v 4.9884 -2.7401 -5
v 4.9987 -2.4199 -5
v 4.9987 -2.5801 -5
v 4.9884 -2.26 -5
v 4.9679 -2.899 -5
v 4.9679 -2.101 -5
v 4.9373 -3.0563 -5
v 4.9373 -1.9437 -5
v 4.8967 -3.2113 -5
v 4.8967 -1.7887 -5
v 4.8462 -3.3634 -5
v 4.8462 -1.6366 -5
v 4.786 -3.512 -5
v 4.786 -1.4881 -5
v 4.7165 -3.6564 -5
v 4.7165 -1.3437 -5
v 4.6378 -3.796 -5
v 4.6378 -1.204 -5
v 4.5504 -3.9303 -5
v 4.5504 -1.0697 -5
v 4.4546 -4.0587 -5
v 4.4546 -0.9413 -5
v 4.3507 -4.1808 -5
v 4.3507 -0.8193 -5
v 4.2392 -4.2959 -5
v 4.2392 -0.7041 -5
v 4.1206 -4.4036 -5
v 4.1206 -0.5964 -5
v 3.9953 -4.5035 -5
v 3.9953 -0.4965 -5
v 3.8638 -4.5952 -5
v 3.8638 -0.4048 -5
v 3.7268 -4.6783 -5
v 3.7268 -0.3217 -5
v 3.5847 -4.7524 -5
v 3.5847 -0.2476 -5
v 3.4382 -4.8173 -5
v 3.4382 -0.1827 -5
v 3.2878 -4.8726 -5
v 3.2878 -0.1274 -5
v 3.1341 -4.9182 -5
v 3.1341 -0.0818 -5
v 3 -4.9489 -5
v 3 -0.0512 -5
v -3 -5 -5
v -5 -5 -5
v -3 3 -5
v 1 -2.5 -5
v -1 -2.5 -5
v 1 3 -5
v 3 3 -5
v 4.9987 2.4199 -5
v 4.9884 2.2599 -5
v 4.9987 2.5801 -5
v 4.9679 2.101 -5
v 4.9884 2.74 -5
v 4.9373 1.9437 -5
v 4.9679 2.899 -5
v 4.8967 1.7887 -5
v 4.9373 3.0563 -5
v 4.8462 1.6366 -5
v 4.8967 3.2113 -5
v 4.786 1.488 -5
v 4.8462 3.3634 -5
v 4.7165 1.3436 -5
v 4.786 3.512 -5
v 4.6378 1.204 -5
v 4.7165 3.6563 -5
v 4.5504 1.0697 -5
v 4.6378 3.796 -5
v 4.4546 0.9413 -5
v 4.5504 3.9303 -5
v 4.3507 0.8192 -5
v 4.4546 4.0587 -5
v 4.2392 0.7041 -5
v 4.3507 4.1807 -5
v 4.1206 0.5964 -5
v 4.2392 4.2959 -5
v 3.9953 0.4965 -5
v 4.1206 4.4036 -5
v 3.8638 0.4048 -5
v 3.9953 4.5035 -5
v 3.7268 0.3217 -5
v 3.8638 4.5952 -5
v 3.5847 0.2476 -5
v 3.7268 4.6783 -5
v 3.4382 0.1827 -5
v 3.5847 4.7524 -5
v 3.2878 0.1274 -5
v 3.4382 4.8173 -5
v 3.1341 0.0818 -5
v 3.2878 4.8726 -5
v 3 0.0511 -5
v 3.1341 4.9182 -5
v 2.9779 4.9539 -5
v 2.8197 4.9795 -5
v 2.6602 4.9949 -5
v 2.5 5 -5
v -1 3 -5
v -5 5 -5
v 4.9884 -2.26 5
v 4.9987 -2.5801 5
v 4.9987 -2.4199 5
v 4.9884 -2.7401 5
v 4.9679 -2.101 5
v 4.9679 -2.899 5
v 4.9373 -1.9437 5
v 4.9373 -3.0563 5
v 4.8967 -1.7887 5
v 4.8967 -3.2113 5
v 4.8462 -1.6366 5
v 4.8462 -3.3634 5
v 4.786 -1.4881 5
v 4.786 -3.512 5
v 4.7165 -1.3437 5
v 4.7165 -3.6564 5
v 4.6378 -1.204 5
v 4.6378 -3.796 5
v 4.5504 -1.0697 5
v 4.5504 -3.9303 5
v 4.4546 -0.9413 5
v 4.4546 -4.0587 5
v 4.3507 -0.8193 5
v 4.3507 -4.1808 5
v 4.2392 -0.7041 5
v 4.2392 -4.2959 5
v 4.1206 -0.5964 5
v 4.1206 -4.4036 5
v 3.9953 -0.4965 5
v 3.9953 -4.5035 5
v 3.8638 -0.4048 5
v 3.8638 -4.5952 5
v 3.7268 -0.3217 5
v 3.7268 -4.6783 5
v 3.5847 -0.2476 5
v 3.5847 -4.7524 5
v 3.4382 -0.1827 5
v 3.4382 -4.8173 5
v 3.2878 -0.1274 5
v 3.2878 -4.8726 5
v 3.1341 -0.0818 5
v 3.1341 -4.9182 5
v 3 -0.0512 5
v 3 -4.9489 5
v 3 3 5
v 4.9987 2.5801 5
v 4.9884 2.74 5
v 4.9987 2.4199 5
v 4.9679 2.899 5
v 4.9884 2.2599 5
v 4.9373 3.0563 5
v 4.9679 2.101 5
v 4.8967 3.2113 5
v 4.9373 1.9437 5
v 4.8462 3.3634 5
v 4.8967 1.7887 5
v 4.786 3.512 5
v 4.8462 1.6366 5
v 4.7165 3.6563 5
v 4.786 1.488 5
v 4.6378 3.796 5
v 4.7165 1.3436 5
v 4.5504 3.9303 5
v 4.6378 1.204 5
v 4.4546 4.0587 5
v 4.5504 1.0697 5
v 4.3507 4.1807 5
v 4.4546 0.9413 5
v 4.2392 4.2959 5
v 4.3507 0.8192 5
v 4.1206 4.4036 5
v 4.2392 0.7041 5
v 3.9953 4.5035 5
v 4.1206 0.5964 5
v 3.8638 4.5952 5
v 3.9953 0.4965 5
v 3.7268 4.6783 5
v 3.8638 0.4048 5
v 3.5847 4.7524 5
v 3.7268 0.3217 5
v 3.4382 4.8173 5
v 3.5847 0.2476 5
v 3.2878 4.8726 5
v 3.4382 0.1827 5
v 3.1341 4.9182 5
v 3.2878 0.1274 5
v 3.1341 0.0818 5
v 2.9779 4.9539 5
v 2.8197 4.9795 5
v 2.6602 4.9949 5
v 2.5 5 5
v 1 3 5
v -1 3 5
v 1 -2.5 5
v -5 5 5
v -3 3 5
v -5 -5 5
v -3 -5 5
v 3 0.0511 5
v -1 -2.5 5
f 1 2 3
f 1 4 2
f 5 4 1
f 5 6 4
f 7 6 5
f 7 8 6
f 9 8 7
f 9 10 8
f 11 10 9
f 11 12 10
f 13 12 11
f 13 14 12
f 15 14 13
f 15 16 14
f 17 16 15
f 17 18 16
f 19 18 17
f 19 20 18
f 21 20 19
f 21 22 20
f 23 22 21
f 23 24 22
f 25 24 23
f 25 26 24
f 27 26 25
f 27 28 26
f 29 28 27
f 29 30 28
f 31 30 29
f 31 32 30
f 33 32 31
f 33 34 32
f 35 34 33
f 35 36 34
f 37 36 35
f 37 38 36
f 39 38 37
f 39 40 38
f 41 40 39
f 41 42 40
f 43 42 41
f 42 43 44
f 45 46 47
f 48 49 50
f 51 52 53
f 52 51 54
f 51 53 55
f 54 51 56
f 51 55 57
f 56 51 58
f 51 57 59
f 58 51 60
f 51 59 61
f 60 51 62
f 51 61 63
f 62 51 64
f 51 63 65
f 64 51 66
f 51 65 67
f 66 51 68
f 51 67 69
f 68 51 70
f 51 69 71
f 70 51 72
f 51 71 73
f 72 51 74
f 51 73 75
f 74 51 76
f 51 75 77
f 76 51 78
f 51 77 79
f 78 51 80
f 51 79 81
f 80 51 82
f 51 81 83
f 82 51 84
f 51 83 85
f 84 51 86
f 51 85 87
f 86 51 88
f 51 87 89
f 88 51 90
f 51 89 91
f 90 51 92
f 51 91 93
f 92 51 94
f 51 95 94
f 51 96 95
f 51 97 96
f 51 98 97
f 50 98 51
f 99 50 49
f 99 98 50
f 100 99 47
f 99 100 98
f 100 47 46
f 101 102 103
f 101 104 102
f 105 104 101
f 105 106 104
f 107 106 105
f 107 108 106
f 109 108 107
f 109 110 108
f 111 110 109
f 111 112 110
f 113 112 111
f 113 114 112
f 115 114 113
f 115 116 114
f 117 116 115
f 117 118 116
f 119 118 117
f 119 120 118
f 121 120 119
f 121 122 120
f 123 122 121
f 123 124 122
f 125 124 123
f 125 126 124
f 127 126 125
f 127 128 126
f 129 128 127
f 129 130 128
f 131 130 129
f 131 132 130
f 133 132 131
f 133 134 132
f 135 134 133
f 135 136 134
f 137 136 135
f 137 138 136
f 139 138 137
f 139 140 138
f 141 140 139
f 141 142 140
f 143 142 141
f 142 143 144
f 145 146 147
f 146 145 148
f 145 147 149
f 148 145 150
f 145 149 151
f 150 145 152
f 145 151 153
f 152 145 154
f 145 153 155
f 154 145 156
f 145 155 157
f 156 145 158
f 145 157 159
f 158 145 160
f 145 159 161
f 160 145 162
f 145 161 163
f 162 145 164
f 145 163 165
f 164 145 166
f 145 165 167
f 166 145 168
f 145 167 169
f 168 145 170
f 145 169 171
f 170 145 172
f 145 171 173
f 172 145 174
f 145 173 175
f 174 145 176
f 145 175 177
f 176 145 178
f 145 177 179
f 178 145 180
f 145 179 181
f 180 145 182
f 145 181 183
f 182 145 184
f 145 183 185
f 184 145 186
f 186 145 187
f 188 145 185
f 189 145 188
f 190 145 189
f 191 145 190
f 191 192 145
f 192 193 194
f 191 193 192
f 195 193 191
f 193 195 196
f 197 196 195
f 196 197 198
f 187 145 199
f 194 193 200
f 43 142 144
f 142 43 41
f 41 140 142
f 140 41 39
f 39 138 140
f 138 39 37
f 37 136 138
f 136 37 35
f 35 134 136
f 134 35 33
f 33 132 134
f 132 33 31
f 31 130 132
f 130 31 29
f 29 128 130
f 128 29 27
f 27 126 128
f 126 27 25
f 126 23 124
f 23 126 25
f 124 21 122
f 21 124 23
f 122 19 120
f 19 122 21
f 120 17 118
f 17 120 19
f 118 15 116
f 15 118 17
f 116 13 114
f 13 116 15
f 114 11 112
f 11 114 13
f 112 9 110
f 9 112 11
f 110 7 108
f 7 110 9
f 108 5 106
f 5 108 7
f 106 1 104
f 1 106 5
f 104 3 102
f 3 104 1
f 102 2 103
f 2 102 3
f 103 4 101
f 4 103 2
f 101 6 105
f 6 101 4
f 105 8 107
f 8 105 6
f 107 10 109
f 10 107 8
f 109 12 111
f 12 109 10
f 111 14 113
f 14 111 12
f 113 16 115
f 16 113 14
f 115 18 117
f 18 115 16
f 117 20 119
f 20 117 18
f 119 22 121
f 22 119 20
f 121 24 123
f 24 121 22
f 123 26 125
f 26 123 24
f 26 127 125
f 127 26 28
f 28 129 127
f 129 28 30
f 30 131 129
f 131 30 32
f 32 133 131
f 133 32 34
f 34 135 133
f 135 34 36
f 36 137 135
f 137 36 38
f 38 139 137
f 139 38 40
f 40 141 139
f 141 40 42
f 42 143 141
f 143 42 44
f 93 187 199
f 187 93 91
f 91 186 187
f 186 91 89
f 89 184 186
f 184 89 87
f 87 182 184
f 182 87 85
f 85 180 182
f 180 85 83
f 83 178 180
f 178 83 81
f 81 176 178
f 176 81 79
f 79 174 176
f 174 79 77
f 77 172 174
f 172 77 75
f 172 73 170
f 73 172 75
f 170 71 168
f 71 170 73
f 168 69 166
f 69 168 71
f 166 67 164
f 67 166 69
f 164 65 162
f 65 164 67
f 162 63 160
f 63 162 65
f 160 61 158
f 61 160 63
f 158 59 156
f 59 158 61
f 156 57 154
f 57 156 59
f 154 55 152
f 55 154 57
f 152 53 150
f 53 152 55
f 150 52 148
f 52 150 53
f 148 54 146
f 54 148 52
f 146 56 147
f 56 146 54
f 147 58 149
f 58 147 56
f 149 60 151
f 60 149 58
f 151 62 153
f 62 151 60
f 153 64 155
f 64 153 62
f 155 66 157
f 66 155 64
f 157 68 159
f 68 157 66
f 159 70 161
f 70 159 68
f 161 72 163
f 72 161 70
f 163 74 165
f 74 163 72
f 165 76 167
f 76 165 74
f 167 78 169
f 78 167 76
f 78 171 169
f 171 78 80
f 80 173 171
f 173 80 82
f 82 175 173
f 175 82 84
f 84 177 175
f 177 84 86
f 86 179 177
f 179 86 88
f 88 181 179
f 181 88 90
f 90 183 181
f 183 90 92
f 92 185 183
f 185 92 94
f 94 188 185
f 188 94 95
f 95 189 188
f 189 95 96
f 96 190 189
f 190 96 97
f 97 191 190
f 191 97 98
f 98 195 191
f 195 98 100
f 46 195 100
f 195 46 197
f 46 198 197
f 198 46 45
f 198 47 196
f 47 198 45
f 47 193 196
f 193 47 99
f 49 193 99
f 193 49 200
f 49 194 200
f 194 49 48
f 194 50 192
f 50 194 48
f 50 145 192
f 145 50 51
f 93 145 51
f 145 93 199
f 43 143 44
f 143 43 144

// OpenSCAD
// Generated by SolidPython 1.1.3 on 2025-02-20 04:03:48
$fn=50;


intersection() {
	translate(v = [-5.0000000000, -5.0000000000, -5.0000000000]) {
		linear_extrude(height = 10) {
			polygon(points = [[7.5000000000, 10.0000000000], [7.6601755500, 9.9948634819], [7.8196929042, 9.9794750346], [7.9778965718, 9.9538978925], [8.1341364598, 9.9182371576], [8.2877705451, 9.8726393675], [8.4381675122, 9.8172918934], [8.5847093478, 9.7524221698], [8.7267938800, 9.6782967603], [8.8638372530, 9.5952202622], [8.9952763262, 9.5035340547], [9.1205709883, 9.4036148959], [9.2392063765, 9.2958733752], [9.3506949927, 9.1807522257], [9.4545787062, 9.0587245046], [9.5504306365, 8.9302916503], [9.6378569075, 8.7959814208], [9.7164982659, 8.6563457256], [9.7860315575, 8.5119583578], [9.8461710551, 8.3634126361], [9.8966696326, 8.2113189666], [9.9373197805, 8.0563023349], [9.9679544585, 7.8989997376], [9.9884477824, 7.7400575648], [9.9987155405, 7.5801289439], [9.9987155405, 7.4198710561], [9.9884477824, 7.2599424352], [9.9679544585, 7.1010002624], [9.9373197805, 6.9436976651], [9.8966696326, 6.7886810334], [9.8461710551, 6.6365873639], [9.7860315575, 6.4880416422], [9.7164982659, 6.3436542744], [9.6378569075, 6.2040185792], [9.5504306365, 6.0697083497], [9.4545787062, 5.9412754954], [9.3506949927, 5.8192477743], [9.2392063765, 5.7041266248], [9.1205709883, 5.5963851041], [8.9952763262, 5.4964659453], [8.8638372530, 5.4047797378], [8.7267938800, 5.3217032397], [8.5847093478, 5.2475778302], [8.4381675122, 5.1827081066], [8.2877705451, 5.1273606325], [8.1341364598, 5.0817628424], [7.9778965718, 5.0461021075], [7.8196929042, 5.0205249654], [7.6601755500, 5.0051365181], [7.5000000000, 5.0000000000], [7.5000000000, 5.0000000000], [7.6601755500, 4.9948634819], [7.8196929042, 4.9794750346], [7.9778965718, 4.9538978925], [8.1341364598, 4.9182371576], [8.2877705451, 4.8726393675], [8.4381675122, 4.8172918934], [8.5847093478, 4.7524221698], [8.7267938800, 4.6782967603], [8.8638372530, 4.5952202622], [8.9952763262, 4.5035340547], [9.1205709883, 4.4036148959], [9.2392063765, 4.2958733752], [9.3506949927, 4.1807522257], [9.4545787062, 4.0587245046], [9.5504306365, 3.9302916503], [9.6378569075, 3.7959814208], [9.7164982659, 3.6563457256], [9.7860315575, 3.5119583578], [9.8461710551, 3.3634126361], [9.8966696326, 3.2113189666], [9.9373197805, 3.0563023349], [9.9679544585, 2.8989997376], [9.9884477824, 2.7400575648], [9.9987155405, 2.5801289439], [9.9987155405, 2.4198710561], [9.9884477824, 2.2599424352], [9.9679544585, 2.1010002624], [9.9373197805, 1.9436976651], [9.8966696326, 1.7886810334], [9.8461710551, 1.6365873639], [9.7860315575, 1.4880416422], [9.7164982659, 1.3436542744], [9.6378569075, 1.2040185792], [9.5504306365, 1.0697083497], [9.4545787062, 0.9412754954], [9.3506949927, 0.8192477743], [9.2392063765, 0.7041266248], [9.1205709883, 0.5963851041], [8.9952763262, 0.4964659453], [8.8638372530, 0.4047797378], [8.7267938800, 0.3217032397], [8.5847093478, 0.2475778302], [8.4381675122, 0.1827081066], [8.2877705451, 0.1273606325], [8.1341364598, 0.0817628424], [7.9778965718, 0.0461021075], [7.8196929042, 0.0205249654], [7.6601755500, 0.0051365181], [7.5000000000, 0.0000000000], [0, 0], [0, 10]]);
		}
	}
	rotate(a = -90, v = [0, 0, 1]) {
		translate(v = [-5.0000000000, -5.0000000000, -5.0000000000]) {
			linear_extrude(height = 10) {
				polygon(points = [[0, 0], [10, 0], [10, 2.0000000000], [2.0000000000, 2.0000000000], [2.0000000000, 4.0000000000], [7.5000000000, 4.0000000000], [7.5000000000, 6.0000000000], [2.0000000000, 6.0000000000], [2.0000000000, 8.0000000000], [10, 8.0000000000], [10, 10], [0, 10]]);
			}
		}
	}
}
/***********************************************
*********      SolidPython code:      **********
************************************************
 
from solid import *
from solid.utils import *

import math
import matplotlib.pyplot as plt
import subprocess
import os

class Hole:
    def __init__(self, x, y, radius):
        """
        Hole defined by:
        :param x: x dimension for center point of the circle as a ratio of letter height
        :param y: y dimension for center point of the circle as a ratio of letter height
        :param radius: radius of circle as a ratio of letter height
        """
        self.x = x
        self.y = y
        self.radius = radius

class Letter3D:
    def __init__(self, name, outer_shape_points, height, holes=None):
        """
        3D Letter defined by:
        :param name: name of letter
        :param outer_shape_points: points defining the outer shape of the letter
        :param heigh: size of cube that letter fits inside
        :param holes: list of Holes
        """
        self.name = name
        self.outer_shape_points = outer_shape_points
        self.holes = holes if holes is None else []
        self.height = height


    def generate(self):
        shape = polygon(points=self.outer_shape_points)

        if self.holes:
            for hole in self.holes:
                circle_hole = circle(r=hole.radius*self.height)
                positioned_hole = translate([hole.x*self.height, hole.y*self.height])(circle_hole)
                shape = difference()(shape, positioned_hole)
        
        shape_3d = linear_extrude(height=self.height)(shape)
        shape_3d = translate([-self.height/2, -self.height/2, -self.height/2])(shape_3d)
        return shape_3d
    
    def render(self):
        scad_render_to_file(self.shape, f"output/{self.name}.scad", file_header='$fn=50;')
        subprocess.run(["C:\\Program Files\\OpenSCAD\\openscad.exe", "-o", f"output\\{self.name}.stl", f"output\\{self.name}.scad"])


class TwoLetter3D:
    def __init__(self, height, letterA, letterA_face, letterB=None, letterB_face=None):
        self.height = height
        self.letterA = letterA
        self.letterB = letterB
        self.letterA_face = letterA_face
        self.letterB_face = letterB_face

    def call_letter_generation(self, letter):
        letter = letter.upper()
        function_name = f"letter_{letter}"
        func = globals().get(function_name)
        if func is None:
            raise ValueError(f"No letter generation function defined for letter '{letter}'.")
        else:
            print(func)
        return func(self.height)
    
    def rotate_object(self, face, shape):
        face = face.lower()
        if face == "z":
            return shape
        if face == "x":
            return rotate(a=90, v=[0,1,0])(shape)
        if face == "y":
            return rotate(a=-90, v=[0,0,1])(shape)
        else:
            raise ValueError("Face must be one of 'x', 'y', or 'z'.")

    def render(self):
        if self.letterA:
            letterA3D = self.call_letter_generation(self.letterA)
            letterA3D = self.rotate_object(self.letterA_face, letterA3D)

        if self.letterB:
            letterB3D = self.call_letter_generation(self.letterB)
            letterB3D = self.rotate_object(self.letterB_face, letterB3D)
            combined = intersection()(letterA3D, letterB3D)
            file_name = self.letterA + self.letterB
            scad_render_to_file(combined, f"output/{file_name}.scad", file_header='$fn=50;')
            subprocess.run(["C:\\Program Files\\OpenSCAD\\openscad.exe", "-o", f"output\\{file_name}.stl", f"output\\{file_name}.scad"])
            return
        else:
            file_name = self.letterA
            scad_render_to_file(letterA3D, f"output/{file_name}.scad", file_header='$fn=50;')
            subprocess.run(["C:\\Program Files\\OpenSCAD\\openscad.exe", "-o", f"output\\{file_name}.stl", f"output\\{file_name}.scad"])
    
                

def arc_points(radius, start_angle, end_angle, center=[0,0], num_points=50):
    angles = [start_angle + i * (end_angle - start_angle) / (num_points - 1)
              for i in range(num_points)]
    points = [
        (center[0] + radius * math.cos(math.radians(angle)),
         center[1] + radius * math.sin(math.radians(angle)))
        for angle in angles
    ]
    return points

def letter_A(h):
    shape_points = [(0,0), (h/2, h), (h, 0), (5/6*h, 0), (2/3*h, 1/3*h), (1/3*h, 1/3*h), (h/6, 0)]
    holes = [Hole(1/2, 7/12, 1/6)]
    A = Letter3D("A", shape_points, h, holes)
    return A.generate()

def letter_B(h):
    top_arc_points = arc_points(h/4, 90, -90, center=[3/4*h, 3/4*h])
    bottom_arc_points = arc_points(h/4, 90, -90, center=[3/4*h, h/4])
    other_points = [(0,0),(0,h)]

    shape_points = top_arc_points + bottom_arc_points + other_points
    holes = [Hole(1/2, 3/4, 1/6), Hole(1/2, 1/4, 1/6)]
    B = Letter3D("B", shape_points, h, holes)
    return B.generate()

def letter_C(h):
    outer_arc_points = arc_points(h/2, 30, 330, center=[h/2,h/2])
    inner_arc_points = arc_points(h/4, 30, 330, center=[h/2,h/2])[::-1]
    shape_points = outer_arc_points + inner_arc_points
    # print(shape_points)
    C = Letter3D("C", shape_points, h)
    return C.generate()


def letter_D(h):
    outer_arc_points = arc_points(h/2, 90, -90, center= [h/2, h/2])
    shape_points = outer_arc_points + [(0,0), (0, h)]
    holes = [Hole(1/2, 1/2, 1/6)]
    D = Letter3D("D", shape_points, h, holes)
    return D.generate()

def letter_E(h):
    points = [(0,0), (h,0), (h,h/5), (h/5,h/5), (h/5,2/5*h), (3/4*h,2/5*h), (3/4*h,3/5*h), (h/5,3/5*h), (h/5,4/5*h), (h,4/5*h), (h,h), (0,h)]
    E = Letter3D("E", points, h)
    return E.generate()

def letter_F(h):
    points = [(0,0), (h/5,0), (h/5,2/5*h), (3/4*h,2/5*h), (3/4*h,3/5*h), (h/5,3/5*h), (h/5,4/5*h), (h,4/5*h), (h,h), (0,h)]
    F = Letter3D("F", points, h)
    return F.generate()

if __name__ == "__main__":
    os.makedirs("output", exist_ok=True)

    letters = [chr(x) for x in range(ord('A'), ord('F') + 1)]
    for letter in letters:
        for other_letter in letters:
            shape = TwoLetter3D(10, letter, "z", other_letter, "y")
            shape.render()
 
 
************************************************/
